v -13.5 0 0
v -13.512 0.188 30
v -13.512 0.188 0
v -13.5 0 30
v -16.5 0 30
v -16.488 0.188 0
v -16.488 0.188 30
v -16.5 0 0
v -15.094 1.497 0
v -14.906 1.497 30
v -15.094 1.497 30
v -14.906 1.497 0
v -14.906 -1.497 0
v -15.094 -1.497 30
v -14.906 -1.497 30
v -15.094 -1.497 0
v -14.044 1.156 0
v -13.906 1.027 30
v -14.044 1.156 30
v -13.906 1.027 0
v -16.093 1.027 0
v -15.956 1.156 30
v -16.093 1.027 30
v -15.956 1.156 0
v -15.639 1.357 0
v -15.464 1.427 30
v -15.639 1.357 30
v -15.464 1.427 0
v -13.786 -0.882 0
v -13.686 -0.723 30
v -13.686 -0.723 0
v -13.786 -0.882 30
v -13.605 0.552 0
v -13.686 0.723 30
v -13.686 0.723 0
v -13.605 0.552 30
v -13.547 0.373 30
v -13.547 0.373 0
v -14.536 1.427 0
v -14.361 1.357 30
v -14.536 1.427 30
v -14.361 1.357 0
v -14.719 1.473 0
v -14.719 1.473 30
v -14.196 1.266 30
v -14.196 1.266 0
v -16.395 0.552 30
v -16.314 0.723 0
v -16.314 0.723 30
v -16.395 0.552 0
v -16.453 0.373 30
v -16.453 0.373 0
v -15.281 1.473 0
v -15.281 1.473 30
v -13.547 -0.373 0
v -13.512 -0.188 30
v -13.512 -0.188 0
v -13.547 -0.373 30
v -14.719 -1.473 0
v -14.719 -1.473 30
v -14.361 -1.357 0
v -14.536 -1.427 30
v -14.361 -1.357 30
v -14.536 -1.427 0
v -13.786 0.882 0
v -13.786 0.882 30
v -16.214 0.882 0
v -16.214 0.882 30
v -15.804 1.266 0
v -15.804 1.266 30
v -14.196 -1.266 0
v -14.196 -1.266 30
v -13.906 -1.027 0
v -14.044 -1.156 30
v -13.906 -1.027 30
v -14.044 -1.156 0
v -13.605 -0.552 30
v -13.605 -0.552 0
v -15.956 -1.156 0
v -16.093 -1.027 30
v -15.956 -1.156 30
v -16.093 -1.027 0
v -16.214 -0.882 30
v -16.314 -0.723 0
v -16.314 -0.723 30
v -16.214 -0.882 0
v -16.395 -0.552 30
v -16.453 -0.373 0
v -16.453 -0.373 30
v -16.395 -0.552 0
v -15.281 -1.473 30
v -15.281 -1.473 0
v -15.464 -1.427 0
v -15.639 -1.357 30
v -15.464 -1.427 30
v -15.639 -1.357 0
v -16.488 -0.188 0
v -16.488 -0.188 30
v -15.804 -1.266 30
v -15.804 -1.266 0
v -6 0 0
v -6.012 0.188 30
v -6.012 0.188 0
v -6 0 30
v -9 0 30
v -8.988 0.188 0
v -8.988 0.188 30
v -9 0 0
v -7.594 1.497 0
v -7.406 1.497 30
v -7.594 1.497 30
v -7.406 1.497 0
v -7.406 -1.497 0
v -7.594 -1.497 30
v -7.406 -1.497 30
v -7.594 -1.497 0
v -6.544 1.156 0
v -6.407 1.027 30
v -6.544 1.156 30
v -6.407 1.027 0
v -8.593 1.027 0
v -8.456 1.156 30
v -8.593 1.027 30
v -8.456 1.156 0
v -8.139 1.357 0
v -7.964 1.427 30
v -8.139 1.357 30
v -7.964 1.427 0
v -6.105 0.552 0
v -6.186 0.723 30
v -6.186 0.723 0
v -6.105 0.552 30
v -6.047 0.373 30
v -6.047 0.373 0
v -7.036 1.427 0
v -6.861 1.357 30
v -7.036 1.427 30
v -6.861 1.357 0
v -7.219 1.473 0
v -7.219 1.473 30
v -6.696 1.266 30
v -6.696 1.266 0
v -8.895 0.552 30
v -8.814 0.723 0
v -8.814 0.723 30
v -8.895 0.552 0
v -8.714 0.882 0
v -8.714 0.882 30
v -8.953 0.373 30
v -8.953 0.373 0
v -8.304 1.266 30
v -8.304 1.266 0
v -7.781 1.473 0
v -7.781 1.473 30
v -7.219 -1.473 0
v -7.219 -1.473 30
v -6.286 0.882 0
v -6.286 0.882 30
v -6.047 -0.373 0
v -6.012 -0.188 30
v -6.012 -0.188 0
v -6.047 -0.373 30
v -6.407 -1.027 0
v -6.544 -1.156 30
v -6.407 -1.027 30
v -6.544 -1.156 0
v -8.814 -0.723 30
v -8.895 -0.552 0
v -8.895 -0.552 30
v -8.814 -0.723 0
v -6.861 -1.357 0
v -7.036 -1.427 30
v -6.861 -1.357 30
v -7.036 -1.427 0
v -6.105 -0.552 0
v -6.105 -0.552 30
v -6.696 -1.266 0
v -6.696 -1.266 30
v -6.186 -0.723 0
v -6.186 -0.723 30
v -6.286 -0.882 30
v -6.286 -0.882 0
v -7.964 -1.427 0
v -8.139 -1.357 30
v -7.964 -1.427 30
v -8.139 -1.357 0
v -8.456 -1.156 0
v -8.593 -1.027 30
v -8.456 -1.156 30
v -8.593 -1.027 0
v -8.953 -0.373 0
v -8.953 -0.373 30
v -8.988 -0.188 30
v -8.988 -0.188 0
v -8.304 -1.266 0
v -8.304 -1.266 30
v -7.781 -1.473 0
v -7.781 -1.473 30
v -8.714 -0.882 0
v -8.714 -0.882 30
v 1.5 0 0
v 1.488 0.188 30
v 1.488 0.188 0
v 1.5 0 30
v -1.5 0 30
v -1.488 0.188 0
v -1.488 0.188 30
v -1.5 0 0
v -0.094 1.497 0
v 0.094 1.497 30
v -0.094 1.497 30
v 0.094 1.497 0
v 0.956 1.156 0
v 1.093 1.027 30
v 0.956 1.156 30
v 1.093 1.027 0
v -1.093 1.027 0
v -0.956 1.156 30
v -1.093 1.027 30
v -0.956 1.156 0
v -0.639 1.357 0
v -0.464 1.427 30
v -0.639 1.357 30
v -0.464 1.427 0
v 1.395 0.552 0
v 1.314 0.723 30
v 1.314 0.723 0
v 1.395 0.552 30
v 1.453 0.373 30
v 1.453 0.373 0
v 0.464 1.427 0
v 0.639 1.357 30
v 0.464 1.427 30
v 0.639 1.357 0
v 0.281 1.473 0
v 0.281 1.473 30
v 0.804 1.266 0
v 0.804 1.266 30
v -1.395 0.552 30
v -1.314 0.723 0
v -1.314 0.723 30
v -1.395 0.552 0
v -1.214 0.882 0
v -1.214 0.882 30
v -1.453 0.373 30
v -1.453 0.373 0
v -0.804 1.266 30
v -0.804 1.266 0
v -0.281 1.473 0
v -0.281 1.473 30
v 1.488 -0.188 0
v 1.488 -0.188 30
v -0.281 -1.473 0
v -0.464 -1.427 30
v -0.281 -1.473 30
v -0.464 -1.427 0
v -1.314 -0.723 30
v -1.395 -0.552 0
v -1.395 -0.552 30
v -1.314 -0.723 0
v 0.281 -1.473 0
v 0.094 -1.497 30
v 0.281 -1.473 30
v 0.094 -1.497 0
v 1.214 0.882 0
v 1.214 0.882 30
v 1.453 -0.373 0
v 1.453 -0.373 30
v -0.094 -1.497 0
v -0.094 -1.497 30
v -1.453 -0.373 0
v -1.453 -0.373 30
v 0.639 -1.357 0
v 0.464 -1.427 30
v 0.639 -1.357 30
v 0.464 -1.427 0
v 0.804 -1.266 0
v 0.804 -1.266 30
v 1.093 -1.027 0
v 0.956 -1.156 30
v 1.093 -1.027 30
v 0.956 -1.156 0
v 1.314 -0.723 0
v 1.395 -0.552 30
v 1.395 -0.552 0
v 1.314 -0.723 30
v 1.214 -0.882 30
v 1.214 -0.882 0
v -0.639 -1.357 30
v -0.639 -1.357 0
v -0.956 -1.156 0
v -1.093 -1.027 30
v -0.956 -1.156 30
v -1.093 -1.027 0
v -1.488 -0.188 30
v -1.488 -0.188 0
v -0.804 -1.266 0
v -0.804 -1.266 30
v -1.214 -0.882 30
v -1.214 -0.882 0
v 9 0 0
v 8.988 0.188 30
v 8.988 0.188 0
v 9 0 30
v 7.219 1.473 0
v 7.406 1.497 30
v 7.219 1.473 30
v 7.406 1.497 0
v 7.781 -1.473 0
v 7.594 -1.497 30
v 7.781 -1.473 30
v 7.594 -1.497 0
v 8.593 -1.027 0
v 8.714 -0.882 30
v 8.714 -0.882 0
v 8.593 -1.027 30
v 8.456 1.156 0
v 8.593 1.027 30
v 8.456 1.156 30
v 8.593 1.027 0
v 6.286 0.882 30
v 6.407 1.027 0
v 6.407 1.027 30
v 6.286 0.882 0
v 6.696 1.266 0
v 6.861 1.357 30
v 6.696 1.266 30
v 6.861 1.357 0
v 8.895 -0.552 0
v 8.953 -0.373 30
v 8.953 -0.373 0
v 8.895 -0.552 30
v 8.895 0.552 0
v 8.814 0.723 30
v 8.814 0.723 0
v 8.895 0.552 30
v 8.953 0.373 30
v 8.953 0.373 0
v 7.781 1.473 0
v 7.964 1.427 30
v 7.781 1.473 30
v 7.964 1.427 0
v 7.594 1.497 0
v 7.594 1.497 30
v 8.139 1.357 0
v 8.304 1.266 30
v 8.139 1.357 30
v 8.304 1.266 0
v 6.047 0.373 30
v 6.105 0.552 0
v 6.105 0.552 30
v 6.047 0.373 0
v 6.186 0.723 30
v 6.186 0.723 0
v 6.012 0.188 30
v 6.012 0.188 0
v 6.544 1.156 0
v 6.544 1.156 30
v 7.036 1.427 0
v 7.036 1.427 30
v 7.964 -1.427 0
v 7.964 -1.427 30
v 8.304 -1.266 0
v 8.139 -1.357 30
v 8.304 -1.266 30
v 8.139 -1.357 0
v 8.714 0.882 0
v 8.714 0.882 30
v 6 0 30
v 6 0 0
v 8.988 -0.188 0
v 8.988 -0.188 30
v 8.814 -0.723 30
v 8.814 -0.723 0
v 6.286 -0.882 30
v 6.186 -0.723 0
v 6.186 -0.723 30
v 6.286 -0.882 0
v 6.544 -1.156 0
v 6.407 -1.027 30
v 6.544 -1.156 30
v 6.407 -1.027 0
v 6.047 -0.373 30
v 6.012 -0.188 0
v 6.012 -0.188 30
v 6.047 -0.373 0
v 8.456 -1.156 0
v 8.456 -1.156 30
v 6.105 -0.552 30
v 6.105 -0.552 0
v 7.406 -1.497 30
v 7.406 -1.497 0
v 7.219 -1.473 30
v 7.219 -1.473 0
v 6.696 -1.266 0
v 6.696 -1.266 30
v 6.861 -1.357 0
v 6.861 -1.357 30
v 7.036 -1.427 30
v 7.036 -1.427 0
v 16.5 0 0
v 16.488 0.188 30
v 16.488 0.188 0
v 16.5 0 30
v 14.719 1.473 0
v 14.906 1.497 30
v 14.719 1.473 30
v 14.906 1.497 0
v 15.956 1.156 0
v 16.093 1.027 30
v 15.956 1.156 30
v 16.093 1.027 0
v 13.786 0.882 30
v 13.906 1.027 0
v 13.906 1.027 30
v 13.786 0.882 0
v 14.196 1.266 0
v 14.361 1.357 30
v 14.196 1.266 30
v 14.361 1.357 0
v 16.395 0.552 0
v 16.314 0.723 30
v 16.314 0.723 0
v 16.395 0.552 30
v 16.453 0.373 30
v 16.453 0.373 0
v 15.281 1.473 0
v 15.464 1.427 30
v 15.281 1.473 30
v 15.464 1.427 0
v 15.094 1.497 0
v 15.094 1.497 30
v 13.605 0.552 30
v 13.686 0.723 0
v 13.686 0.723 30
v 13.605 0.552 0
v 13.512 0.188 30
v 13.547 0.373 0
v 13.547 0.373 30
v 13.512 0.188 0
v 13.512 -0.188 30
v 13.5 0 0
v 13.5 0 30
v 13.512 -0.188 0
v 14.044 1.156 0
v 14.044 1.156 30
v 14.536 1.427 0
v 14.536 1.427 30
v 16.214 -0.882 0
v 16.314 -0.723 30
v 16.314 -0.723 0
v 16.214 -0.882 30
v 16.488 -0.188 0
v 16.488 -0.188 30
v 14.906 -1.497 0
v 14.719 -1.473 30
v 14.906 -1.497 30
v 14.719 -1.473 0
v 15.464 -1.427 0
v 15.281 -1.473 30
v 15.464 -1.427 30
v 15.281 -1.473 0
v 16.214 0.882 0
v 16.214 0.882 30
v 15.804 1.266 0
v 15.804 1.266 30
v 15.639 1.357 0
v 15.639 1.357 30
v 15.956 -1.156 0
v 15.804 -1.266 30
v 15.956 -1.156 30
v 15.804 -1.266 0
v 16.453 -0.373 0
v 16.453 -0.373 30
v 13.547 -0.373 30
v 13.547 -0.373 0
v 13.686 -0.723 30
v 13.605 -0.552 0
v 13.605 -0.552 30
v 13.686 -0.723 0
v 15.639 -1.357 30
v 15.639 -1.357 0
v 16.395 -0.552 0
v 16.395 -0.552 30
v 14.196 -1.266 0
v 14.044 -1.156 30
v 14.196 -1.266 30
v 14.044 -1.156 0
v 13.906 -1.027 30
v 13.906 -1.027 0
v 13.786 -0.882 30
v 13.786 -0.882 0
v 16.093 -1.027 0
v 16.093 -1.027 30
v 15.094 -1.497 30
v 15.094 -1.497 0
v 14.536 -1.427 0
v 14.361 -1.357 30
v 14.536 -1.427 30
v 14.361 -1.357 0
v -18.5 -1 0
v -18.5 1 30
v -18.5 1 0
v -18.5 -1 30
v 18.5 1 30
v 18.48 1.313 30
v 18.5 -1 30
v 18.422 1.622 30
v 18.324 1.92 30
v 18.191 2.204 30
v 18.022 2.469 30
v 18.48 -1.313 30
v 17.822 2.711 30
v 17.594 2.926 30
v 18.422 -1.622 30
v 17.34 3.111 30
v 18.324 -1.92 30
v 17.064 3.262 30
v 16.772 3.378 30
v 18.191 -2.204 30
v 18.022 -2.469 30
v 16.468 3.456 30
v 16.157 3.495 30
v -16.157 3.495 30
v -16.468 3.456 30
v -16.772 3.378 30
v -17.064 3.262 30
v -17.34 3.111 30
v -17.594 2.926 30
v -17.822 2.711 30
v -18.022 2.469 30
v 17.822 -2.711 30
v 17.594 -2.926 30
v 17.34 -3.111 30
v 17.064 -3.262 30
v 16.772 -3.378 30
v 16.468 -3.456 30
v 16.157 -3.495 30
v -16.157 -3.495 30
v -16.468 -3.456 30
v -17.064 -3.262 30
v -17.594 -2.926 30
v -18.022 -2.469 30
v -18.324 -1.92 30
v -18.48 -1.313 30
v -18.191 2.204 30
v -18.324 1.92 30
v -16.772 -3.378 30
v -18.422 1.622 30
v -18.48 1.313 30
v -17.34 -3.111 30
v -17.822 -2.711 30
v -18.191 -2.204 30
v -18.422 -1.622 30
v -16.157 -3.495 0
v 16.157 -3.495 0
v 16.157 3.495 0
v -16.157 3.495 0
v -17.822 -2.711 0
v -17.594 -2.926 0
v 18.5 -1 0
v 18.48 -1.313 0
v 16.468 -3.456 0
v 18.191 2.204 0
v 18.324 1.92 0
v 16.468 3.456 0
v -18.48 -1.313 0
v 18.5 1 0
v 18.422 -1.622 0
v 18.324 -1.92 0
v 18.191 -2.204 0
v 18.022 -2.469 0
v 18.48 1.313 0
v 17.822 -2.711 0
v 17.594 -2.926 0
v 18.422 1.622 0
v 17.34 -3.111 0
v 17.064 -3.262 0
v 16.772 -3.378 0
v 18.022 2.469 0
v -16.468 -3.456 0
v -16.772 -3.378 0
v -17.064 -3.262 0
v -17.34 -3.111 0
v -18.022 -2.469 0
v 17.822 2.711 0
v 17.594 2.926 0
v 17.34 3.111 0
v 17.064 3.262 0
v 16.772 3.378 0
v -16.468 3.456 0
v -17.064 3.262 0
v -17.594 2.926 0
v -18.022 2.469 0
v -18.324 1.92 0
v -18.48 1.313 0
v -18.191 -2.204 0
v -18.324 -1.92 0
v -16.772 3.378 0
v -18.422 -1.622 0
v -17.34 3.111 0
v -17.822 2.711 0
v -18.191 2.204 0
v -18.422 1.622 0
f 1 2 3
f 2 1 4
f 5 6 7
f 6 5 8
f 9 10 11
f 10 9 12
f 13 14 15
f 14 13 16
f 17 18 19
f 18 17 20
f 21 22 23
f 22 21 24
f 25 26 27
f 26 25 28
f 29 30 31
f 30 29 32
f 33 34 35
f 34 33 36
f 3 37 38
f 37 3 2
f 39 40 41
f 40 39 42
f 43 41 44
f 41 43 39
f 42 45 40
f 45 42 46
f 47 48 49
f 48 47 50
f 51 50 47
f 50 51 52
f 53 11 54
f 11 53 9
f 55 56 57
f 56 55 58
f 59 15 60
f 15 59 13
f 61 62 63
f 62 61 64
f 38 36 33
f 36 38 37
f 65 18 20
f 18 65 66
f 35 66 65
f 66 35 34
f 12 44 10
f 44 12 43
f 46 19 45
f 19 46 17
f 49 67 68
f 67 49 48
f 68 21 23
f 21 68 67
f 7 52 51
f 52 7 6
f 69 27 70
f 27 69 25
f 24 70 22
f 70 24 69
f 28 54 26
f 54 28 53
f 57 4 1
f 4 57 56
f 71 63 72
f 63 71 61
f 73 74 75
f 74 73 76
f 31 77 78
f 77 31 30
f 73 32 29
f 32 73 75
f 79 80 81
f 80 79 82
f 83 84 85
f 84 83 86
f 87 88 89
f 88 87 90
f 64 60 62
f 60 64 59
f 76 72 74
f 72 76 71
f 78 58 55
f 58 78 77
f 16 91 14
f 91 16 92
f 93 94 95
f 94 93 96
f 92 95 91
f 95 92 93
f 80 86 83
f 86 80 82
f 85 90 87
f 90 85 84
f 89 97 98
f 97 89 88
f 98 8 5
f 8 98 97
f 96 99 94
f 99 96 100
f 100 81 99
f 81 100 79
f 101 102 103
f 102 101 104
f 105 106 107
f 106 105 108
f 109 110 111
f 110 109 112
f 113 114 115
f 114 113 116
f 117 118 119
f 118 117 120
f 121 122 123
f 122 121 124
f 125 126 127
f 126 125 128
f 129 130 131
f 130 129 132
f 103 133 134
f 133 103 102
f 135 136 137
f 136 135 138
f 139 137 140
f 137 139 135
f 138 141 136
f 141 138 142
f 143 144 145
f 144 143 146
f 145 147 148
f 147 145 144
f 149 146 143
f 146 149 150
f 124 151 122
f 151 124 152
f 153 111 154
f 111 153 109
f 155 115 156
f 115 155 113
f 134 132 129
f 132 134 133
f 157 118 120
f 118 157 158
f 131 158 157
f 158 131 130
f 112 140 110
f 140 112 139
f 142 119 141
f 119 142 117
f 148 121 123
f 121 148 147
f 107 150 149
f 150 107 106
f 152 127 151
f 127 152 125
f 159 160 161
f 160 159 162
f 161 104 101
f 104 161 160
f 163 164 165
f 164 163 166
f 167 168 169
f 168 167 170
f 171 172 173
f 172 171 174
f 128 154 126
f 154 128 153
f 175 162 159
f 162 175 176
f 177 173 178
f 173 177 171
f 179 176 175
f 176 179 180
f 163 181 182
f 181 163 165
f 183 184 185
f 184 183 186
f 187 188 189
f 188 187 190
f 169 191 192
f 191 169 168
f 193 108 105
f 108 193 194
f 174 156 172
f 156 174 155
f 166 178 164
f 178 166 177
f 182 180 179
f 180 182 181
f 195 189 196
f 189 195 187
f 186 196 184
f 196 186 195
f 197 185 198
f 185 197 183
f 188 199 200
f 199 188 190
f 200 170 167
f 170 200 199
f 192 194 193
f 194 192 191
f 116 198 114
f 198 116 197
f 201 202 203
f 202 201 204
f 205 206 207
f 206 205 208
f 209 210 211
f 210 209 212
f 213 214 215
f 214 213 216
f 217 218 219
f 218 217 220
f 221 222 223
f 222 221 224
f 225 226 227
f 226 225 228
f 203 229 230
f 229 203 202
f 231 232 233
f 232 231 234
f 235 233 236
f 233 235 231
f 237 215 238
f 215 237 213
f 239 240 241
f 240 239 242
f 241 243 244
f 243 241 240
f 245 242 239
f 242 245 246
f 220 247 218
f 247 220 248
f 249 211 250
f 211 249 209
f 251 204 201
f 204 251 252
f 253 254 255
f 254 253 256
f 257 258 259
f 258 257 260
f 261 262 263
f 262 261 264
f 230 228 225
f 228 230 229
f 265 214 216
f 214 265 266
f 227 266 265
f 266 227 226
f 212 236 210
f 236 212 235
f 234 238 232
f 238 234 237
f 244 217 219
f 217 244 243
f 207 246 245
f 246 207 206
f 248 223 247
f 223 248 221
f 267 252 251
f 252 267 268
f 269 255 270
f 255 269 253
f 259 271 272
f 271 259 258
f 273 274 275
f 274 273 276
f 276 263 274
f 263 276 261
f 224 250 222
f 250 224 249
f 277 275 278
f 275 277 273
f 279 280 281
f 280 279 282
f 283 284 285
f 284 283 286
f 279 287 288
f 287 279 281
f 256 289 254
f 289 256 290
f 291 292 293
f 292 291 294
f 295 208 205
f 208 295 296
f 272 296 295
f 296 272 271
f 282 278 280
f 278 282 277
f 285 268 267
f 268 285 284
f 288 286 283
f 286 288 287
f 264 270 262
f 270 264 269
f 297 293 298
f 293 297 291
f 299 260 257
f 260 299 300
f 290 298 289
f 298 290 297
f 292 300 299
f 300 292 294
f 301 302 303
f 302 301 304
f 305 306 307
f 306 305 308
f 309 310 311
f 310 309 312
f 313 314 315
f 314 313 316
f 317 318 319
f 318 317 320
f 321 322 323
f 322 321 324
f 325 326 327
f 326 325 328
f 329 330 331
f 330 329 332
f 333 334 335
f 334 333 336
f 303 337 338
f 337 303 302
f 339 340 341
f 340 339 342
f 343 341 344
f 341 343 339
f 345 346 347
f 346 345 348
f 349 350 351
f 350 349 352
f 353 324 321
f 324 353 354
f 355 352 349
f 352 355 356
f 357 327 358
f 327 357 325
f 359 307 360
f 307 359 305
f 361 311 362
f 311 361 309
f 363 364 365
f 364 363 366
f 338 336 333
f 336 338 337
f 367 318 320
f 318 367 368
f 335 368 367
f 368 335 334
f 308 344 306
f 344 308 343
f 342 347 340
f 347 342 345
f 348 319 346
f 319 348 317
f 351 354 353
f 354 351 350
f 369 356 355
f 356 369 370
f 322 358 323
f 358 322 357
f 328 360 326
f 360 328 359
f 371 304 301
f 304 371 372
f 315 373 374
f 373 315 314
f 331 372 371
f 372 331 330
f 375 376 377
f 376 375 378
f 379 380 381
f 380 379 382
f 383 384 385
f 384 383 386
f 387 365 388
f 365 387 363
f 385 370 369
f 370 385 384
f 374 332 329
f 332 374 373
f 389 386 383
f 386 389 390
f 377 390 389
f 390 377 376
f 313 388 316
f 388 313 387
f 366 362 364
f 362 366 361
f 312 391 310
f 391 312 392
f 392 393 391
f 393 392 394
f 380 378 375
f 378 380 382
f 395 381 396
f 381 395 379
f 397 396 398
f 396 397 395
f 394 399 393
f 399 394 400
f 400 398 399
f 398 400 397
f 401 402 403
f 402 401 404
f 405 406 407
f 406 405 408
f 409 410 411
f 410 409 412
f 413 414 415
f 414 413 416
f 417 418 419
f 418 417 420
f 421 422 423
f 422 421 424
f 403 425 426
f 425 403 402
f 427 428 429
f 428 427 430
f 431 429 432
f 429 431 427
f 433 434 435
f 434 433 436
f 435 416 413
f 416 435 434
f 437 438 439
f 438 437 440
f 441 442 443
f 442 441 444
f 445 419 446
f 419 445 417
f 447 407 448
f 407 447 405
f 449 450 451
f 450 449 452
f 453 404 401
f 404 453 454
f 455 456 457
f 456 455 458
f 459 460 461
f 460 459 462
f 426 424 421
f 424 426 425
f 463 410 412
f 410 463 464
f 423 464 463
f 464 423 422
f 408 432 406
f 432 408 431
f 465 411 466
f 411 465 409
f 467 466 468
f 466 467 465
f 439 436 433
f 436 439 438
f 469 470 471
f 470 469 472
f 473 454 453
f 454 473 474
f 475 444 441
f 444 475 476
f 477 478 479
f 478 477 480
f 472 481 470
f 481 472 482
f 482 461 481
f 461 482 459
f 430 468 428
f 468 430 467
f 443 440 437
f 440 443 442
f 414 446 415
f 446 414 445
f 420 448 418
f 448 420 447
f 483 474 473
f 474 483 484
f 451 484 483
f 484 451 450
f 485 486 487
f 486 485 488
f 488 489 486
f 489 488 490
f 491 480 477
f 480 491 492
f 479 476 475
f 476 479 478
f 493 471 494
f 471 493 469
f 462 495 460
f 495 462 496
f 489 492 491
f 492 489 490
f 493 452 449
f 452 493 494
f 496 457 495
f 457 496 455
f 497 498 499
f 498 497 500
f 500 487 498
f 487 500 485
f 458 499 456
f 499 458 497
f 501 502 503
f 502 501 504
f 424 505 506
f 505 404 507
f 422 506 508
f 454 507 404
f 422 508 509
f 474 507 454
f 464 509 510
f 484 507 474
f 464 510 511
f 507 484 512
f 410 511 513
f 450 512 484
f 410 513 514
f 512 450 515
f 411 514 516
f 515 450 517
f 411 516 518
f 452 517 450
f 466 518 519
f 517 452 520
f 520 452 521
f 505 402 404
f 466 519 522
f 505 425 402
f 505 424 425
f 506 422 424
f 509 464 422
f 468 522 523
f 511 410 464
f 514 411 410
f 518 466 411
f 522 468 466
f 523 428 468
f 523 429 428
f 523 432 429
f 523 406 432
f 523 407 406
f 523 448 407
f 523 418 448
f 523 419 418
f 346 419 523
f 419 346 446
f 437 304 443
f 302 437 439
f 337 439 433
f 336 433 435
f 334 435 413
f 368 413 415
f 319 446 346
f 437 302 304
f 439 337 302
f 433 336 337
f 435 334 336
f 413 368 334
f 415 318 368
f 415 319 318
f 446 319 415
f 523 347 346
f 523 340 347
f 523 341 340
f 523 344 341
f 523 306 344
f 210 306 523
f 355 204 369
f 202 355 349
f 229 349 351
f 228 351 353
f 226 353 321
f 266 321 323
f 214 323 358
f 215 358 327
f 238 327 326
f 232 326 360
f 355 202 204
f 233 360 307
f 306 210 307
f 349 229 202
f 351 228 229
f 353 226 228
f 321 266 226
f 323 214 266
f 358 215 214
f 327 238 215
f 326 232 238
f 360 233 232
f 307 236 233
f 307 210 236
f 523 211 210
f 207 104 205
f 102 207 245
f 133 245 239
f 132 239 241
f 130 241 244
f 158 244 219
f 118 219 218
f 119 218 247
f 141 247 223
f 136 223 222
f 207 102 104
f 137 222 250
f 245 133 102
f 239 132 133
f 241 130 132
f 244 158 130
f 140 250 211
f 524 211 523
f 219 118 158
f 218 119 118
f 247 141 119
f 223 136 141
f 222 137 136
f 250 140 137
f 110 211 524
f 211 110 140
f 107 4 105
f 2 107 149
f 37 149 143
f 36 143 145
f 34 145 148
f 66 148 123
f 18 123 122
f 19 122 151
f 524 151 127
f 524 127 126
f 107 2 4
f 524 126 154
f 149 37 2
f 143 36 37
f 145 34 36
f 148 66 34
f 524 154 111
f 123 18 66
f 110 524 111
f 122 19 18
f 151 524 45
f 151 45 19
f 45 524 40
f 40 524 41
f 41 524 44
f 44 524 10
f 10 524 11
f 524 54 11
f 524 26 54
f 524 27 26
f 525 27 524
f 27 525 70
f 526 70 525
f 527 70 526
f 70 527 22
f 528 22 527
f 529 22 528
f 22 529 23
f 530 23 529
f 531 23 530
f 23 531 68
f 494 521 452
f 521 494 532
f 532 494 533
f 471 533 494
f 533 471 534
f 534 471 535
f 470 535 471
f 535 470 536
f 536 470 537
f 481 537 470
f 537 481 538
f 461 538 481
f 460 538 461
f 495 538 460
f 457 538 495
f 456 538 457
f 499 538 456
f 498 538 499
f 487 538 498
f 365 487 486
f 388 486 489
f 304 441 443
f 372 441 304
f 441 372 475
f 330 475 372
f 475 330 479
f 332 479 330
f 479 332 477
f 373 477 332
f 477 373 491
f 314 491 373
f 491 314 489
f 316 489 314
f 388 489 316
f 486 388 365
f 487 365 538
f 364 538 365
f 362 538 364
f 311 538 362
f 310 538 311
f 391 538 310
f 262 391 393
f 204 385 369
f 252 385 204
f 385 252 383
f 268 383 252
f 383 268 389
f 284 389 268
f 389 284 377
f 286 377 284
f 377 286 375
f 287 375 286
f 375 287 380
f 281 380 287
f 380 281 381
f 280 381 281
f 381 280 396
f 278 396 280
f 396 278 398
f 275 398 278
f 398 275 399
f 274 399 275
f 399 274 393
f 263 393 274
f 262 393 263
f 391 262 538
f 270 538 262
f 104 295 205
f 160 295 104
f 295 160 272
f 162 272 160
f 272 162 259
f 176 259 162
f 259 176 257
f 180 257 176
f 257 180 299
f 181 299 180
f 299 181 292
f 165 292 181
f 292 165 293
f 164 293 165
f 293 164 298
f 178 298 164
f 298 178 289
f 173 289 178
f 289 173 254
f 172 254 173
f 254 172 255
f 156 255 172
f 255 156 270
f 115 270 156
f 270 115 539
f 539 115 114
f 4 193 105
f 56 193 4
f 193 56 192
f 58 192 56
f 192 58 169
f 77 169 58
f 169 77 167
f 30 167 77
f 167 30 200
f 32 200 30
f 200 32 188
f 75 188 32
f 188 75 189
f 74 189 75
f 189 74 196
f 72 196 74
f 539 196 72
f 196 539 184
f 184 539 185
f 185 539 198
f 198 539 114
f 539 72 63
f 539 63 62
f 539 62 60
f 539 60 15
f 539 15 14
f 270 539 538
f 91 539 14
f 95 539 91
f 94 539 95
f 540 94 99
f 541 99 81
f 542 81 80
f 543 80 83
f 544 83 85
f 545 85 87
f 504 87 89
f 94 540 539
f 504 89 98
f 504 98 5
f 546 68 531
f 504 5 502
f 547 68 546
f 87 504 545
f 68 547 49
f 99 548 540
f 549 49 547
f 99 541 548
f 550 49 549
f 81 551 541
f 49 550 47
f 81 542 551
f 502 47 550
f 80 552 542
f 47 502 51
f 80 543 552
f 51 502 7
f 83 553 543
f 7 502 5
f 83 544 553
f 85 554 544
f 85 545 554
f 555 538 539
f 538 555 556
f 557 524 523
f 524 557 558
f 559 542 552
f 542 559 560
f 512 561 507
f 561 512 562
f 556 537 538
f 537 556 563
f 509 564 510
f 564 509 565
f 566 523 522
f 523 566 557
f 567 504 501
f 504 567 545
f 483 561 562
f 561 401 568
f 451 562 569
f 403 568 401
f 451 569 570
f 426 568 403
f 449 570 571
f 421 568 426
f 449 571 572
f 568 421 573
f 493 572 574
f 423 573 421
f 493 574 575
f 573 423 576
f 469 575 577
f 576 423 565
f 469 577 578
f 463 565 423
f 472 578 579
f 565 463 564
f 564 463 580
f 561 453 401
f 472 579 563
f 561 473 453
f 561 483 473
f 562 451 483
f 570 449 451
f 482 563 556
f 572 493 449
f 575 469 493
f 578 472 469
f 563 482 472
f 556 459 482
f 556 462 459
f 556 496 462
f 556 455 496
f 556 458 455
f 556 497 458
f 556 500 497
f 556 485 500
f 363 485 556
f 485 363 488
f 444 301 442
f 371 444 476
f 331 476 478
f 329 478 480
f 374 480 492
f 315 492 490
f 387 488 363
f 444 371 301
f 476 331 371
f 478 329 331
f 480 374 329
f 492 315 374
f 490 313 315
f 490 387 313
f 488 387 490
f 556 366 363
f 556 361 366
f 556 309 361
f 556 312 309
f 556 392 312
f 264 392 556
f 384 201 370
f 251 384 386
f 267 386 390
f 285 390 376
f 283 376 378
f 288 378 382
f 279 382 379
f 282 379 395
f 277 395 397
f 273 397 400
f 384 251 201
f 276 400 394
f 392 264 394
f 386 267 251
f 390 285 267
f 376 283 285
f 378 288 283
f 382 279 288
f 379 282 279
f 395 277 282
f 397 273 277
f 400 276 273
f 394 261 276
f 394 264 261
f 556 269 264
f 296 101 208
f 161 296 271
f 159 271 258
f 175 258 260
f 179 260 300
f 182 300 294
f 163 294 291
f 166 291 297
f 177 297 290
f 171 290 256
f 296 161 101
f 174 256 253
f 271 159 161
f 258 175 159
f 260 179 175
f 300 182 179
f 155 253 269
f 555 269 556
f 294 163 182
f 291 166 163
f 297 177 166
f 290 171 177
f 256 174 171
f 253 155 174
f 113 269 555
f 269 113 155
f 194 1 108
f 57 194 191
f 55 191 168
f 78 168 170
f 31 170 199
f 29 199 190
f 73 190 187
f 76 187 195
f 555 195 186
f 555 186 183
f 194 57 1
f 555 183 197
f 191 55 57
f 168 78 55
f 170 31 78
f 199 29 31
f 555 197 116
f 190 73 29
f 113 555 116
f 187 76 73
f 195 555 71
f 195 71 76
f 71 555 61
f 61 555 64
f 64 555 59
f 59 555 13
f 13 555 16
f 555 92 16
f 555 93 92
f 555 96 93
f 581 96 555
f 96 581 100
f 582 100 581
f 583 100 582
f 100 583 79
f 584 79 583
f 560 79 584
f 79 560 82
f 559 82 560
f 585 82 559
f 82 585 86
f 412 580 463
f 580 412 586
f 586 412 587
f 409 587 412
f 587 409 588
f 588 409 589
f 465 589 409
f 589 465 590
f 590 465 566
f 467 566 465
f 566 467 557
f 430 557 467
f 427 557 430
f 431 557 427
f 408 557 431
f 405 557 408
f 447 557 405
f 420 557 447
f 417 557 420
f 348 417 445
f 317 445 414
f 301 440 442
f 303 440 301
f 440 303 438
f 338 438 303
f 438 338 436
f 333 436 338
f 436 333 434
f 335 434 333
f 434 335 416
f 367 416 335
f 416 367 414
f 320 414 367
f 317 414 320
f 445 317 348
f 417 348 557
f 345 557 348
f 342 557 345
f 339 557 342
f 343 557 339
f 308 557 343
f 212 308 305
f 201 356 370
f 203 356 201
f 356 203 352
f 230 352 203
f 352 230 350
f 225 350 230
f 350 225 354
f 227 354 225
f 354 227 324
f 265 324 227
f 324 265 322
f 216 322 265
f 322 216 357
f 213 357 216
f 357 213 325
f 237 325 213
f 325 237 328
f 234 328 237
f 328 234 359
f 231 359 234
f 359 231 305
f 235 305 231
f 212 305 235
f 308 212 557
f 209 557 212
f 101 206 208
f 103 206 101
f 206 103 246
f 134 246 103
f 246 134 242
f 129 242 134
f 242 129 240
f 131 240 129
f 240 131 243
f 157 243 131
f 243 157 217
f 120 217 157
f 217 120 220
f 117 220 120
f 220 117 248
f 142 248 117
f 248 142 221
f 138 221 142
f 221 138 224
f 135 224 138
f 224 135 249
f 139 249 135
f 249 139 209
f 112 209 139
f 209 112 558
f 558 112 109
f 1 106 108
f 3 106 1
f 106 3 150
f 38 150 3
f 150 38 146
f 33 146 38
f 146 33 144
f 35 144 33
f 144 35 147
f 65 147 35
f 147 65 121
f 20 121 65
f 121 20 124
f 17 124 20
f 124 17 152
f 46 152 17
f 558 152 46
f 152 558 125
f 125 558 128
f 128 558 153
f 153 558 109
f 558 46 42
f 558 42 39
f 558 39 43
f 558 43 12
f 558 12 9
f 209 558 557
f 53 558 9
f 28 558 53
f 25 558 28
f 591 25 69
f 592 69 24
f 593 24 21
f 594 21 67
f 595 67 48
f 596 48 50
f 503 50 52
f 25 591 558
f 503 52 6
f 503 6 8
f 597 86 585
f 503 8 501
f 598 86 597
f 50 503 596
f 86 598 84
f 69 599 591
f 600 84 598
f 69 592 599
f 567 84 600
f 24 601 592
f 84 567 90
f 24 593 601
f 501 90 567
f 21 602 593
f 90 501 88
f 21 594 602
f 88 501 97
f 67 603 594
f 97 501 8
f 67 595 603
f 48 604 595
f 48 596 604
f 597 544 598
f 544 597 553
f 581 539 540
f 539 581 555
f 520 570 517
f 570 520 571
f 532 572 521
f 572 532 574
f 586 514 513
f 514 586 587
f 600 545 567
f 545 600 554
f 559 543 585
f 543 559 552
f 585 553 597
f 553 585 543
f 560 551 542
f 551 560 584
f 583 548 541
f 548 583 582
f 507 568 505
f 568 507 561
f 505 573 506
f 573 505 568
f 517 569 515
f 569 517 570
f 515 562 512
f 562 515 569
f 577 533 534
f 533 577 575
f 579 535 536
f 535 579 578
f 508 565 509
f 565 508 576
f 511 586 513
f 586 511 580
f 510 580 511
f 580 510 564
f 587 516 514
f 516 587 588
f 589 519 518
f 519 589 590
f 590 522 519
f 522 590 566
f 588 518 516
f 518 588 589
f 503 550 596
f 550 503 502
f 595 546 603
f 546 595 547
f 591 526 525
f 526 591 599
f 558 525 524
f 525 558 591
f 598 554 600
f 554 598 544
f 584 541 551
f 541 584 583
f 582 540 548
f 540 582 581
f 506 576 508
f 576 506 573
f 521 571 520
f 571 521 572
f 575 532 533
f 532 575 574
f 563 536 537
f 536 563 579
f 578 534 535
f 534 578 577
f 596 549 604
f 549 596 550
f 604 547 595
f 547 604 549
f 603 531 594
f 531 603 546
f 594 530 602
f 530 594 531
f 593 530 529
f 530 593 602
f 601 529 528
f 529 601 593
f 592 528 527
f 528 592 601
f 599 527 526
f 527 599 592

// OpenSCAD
$fn = 50;


difference() {
	union() {
		translate(v = [0, 0, 0]) {
			rotate(a = [0, 0, 0]) {
				hull() {
					translate(v = [-16.0000000000, 1.0000000000, 0]) {
						rotate(a = [0, 0, 0]) {
							translate(v = [0, 0, 0]) {
								rotate(a = [0, 0, 0]) {
									cylinder(h = 30, r = 2.5000000000);
								}
							}
						}
					}
					translate(v = [16.0000000000, 1.0000000000, 0]) {
						rotate(a = [0, 0, 0]) {
							translate(v = [0, 0, 0]) {
								rotate(a = [0, 0, 0]) {
									cylinder(h = 30, r = 2.5000000000);
								}
							}
						}
					}
					translate(v = [-16.0000000000, -1.0000000000, 0]) {
						rotate(a = [0, 0, 0]) {
							translate(v = [0, 0, 0]) {
								rotate(a = [0, 0, 0]) {
									cylinder(h = 30, r = 2.5000000000);
								}
							}
						}
					}
					translate(v = [16.0000000000, -1.0000000000, 0]) {
						rotate(a = [0, 0, 0]) {
							translate(v = [0, 0, 0]) {
								rotate(a = [0, 0, 0]) {
									cylinder(h = 30, r = 2.5000000000);
								}
							}
						}
					}
				}
			}
		}
	}
	union() {
		translate(v = [-15.0000000000, 0.0000000000, 0]) {
			rotate(a = [0, 0, 0]) {
				translate(v = [0, 0, -50]) {
					rotate(a = [0, 0, 0]) {
						cylinder(h = 100, r = 1.5000000000);
					}
				}
			}
		}
		translate(v = [-7.5000000000, 0.0000000000, 0]) {
			rotate(a = [0, 0, 0]) {
				translate(v = [0, 0, -50]) {
					rotate(a = [0, 0, 0]) {
						cylinder(h = 100, r = 1.5000000000);
					}
				}
			}
		}
		translate(v = [0.0000000000, 0.0000000000, 0]) {
			rotate(a = [0, 0, 0]) {
				translate(v = [0, 0, -50]) {
					rotate(a = [0, 0, 0]) {
						cylinder(h = 100, r = 1.5000000000);
					}
				}
			}
		}
		translate(v = [7.5000000000, 0.0000000000, 0]) {
			rotate(a = [0, 0, 0]) {
				translate(v = [0, 0, -50]) {
					rotate(a = [0, 0, 0]) {
						cylinder(h = 100, r = 1.5000000000);
					}
				}
			}
		}
		translate(v = [15.0000000000, 0.0000000000, 0]) {
			rotate(a = [0, 0, 0]) {
				translate(v = [0, 0, -50]) {
					rotate(a = [0, 0, 0]) {
						cylinder(h = 100, r = 1.5000000000);
					}
				}
			}
		}
	}
}
